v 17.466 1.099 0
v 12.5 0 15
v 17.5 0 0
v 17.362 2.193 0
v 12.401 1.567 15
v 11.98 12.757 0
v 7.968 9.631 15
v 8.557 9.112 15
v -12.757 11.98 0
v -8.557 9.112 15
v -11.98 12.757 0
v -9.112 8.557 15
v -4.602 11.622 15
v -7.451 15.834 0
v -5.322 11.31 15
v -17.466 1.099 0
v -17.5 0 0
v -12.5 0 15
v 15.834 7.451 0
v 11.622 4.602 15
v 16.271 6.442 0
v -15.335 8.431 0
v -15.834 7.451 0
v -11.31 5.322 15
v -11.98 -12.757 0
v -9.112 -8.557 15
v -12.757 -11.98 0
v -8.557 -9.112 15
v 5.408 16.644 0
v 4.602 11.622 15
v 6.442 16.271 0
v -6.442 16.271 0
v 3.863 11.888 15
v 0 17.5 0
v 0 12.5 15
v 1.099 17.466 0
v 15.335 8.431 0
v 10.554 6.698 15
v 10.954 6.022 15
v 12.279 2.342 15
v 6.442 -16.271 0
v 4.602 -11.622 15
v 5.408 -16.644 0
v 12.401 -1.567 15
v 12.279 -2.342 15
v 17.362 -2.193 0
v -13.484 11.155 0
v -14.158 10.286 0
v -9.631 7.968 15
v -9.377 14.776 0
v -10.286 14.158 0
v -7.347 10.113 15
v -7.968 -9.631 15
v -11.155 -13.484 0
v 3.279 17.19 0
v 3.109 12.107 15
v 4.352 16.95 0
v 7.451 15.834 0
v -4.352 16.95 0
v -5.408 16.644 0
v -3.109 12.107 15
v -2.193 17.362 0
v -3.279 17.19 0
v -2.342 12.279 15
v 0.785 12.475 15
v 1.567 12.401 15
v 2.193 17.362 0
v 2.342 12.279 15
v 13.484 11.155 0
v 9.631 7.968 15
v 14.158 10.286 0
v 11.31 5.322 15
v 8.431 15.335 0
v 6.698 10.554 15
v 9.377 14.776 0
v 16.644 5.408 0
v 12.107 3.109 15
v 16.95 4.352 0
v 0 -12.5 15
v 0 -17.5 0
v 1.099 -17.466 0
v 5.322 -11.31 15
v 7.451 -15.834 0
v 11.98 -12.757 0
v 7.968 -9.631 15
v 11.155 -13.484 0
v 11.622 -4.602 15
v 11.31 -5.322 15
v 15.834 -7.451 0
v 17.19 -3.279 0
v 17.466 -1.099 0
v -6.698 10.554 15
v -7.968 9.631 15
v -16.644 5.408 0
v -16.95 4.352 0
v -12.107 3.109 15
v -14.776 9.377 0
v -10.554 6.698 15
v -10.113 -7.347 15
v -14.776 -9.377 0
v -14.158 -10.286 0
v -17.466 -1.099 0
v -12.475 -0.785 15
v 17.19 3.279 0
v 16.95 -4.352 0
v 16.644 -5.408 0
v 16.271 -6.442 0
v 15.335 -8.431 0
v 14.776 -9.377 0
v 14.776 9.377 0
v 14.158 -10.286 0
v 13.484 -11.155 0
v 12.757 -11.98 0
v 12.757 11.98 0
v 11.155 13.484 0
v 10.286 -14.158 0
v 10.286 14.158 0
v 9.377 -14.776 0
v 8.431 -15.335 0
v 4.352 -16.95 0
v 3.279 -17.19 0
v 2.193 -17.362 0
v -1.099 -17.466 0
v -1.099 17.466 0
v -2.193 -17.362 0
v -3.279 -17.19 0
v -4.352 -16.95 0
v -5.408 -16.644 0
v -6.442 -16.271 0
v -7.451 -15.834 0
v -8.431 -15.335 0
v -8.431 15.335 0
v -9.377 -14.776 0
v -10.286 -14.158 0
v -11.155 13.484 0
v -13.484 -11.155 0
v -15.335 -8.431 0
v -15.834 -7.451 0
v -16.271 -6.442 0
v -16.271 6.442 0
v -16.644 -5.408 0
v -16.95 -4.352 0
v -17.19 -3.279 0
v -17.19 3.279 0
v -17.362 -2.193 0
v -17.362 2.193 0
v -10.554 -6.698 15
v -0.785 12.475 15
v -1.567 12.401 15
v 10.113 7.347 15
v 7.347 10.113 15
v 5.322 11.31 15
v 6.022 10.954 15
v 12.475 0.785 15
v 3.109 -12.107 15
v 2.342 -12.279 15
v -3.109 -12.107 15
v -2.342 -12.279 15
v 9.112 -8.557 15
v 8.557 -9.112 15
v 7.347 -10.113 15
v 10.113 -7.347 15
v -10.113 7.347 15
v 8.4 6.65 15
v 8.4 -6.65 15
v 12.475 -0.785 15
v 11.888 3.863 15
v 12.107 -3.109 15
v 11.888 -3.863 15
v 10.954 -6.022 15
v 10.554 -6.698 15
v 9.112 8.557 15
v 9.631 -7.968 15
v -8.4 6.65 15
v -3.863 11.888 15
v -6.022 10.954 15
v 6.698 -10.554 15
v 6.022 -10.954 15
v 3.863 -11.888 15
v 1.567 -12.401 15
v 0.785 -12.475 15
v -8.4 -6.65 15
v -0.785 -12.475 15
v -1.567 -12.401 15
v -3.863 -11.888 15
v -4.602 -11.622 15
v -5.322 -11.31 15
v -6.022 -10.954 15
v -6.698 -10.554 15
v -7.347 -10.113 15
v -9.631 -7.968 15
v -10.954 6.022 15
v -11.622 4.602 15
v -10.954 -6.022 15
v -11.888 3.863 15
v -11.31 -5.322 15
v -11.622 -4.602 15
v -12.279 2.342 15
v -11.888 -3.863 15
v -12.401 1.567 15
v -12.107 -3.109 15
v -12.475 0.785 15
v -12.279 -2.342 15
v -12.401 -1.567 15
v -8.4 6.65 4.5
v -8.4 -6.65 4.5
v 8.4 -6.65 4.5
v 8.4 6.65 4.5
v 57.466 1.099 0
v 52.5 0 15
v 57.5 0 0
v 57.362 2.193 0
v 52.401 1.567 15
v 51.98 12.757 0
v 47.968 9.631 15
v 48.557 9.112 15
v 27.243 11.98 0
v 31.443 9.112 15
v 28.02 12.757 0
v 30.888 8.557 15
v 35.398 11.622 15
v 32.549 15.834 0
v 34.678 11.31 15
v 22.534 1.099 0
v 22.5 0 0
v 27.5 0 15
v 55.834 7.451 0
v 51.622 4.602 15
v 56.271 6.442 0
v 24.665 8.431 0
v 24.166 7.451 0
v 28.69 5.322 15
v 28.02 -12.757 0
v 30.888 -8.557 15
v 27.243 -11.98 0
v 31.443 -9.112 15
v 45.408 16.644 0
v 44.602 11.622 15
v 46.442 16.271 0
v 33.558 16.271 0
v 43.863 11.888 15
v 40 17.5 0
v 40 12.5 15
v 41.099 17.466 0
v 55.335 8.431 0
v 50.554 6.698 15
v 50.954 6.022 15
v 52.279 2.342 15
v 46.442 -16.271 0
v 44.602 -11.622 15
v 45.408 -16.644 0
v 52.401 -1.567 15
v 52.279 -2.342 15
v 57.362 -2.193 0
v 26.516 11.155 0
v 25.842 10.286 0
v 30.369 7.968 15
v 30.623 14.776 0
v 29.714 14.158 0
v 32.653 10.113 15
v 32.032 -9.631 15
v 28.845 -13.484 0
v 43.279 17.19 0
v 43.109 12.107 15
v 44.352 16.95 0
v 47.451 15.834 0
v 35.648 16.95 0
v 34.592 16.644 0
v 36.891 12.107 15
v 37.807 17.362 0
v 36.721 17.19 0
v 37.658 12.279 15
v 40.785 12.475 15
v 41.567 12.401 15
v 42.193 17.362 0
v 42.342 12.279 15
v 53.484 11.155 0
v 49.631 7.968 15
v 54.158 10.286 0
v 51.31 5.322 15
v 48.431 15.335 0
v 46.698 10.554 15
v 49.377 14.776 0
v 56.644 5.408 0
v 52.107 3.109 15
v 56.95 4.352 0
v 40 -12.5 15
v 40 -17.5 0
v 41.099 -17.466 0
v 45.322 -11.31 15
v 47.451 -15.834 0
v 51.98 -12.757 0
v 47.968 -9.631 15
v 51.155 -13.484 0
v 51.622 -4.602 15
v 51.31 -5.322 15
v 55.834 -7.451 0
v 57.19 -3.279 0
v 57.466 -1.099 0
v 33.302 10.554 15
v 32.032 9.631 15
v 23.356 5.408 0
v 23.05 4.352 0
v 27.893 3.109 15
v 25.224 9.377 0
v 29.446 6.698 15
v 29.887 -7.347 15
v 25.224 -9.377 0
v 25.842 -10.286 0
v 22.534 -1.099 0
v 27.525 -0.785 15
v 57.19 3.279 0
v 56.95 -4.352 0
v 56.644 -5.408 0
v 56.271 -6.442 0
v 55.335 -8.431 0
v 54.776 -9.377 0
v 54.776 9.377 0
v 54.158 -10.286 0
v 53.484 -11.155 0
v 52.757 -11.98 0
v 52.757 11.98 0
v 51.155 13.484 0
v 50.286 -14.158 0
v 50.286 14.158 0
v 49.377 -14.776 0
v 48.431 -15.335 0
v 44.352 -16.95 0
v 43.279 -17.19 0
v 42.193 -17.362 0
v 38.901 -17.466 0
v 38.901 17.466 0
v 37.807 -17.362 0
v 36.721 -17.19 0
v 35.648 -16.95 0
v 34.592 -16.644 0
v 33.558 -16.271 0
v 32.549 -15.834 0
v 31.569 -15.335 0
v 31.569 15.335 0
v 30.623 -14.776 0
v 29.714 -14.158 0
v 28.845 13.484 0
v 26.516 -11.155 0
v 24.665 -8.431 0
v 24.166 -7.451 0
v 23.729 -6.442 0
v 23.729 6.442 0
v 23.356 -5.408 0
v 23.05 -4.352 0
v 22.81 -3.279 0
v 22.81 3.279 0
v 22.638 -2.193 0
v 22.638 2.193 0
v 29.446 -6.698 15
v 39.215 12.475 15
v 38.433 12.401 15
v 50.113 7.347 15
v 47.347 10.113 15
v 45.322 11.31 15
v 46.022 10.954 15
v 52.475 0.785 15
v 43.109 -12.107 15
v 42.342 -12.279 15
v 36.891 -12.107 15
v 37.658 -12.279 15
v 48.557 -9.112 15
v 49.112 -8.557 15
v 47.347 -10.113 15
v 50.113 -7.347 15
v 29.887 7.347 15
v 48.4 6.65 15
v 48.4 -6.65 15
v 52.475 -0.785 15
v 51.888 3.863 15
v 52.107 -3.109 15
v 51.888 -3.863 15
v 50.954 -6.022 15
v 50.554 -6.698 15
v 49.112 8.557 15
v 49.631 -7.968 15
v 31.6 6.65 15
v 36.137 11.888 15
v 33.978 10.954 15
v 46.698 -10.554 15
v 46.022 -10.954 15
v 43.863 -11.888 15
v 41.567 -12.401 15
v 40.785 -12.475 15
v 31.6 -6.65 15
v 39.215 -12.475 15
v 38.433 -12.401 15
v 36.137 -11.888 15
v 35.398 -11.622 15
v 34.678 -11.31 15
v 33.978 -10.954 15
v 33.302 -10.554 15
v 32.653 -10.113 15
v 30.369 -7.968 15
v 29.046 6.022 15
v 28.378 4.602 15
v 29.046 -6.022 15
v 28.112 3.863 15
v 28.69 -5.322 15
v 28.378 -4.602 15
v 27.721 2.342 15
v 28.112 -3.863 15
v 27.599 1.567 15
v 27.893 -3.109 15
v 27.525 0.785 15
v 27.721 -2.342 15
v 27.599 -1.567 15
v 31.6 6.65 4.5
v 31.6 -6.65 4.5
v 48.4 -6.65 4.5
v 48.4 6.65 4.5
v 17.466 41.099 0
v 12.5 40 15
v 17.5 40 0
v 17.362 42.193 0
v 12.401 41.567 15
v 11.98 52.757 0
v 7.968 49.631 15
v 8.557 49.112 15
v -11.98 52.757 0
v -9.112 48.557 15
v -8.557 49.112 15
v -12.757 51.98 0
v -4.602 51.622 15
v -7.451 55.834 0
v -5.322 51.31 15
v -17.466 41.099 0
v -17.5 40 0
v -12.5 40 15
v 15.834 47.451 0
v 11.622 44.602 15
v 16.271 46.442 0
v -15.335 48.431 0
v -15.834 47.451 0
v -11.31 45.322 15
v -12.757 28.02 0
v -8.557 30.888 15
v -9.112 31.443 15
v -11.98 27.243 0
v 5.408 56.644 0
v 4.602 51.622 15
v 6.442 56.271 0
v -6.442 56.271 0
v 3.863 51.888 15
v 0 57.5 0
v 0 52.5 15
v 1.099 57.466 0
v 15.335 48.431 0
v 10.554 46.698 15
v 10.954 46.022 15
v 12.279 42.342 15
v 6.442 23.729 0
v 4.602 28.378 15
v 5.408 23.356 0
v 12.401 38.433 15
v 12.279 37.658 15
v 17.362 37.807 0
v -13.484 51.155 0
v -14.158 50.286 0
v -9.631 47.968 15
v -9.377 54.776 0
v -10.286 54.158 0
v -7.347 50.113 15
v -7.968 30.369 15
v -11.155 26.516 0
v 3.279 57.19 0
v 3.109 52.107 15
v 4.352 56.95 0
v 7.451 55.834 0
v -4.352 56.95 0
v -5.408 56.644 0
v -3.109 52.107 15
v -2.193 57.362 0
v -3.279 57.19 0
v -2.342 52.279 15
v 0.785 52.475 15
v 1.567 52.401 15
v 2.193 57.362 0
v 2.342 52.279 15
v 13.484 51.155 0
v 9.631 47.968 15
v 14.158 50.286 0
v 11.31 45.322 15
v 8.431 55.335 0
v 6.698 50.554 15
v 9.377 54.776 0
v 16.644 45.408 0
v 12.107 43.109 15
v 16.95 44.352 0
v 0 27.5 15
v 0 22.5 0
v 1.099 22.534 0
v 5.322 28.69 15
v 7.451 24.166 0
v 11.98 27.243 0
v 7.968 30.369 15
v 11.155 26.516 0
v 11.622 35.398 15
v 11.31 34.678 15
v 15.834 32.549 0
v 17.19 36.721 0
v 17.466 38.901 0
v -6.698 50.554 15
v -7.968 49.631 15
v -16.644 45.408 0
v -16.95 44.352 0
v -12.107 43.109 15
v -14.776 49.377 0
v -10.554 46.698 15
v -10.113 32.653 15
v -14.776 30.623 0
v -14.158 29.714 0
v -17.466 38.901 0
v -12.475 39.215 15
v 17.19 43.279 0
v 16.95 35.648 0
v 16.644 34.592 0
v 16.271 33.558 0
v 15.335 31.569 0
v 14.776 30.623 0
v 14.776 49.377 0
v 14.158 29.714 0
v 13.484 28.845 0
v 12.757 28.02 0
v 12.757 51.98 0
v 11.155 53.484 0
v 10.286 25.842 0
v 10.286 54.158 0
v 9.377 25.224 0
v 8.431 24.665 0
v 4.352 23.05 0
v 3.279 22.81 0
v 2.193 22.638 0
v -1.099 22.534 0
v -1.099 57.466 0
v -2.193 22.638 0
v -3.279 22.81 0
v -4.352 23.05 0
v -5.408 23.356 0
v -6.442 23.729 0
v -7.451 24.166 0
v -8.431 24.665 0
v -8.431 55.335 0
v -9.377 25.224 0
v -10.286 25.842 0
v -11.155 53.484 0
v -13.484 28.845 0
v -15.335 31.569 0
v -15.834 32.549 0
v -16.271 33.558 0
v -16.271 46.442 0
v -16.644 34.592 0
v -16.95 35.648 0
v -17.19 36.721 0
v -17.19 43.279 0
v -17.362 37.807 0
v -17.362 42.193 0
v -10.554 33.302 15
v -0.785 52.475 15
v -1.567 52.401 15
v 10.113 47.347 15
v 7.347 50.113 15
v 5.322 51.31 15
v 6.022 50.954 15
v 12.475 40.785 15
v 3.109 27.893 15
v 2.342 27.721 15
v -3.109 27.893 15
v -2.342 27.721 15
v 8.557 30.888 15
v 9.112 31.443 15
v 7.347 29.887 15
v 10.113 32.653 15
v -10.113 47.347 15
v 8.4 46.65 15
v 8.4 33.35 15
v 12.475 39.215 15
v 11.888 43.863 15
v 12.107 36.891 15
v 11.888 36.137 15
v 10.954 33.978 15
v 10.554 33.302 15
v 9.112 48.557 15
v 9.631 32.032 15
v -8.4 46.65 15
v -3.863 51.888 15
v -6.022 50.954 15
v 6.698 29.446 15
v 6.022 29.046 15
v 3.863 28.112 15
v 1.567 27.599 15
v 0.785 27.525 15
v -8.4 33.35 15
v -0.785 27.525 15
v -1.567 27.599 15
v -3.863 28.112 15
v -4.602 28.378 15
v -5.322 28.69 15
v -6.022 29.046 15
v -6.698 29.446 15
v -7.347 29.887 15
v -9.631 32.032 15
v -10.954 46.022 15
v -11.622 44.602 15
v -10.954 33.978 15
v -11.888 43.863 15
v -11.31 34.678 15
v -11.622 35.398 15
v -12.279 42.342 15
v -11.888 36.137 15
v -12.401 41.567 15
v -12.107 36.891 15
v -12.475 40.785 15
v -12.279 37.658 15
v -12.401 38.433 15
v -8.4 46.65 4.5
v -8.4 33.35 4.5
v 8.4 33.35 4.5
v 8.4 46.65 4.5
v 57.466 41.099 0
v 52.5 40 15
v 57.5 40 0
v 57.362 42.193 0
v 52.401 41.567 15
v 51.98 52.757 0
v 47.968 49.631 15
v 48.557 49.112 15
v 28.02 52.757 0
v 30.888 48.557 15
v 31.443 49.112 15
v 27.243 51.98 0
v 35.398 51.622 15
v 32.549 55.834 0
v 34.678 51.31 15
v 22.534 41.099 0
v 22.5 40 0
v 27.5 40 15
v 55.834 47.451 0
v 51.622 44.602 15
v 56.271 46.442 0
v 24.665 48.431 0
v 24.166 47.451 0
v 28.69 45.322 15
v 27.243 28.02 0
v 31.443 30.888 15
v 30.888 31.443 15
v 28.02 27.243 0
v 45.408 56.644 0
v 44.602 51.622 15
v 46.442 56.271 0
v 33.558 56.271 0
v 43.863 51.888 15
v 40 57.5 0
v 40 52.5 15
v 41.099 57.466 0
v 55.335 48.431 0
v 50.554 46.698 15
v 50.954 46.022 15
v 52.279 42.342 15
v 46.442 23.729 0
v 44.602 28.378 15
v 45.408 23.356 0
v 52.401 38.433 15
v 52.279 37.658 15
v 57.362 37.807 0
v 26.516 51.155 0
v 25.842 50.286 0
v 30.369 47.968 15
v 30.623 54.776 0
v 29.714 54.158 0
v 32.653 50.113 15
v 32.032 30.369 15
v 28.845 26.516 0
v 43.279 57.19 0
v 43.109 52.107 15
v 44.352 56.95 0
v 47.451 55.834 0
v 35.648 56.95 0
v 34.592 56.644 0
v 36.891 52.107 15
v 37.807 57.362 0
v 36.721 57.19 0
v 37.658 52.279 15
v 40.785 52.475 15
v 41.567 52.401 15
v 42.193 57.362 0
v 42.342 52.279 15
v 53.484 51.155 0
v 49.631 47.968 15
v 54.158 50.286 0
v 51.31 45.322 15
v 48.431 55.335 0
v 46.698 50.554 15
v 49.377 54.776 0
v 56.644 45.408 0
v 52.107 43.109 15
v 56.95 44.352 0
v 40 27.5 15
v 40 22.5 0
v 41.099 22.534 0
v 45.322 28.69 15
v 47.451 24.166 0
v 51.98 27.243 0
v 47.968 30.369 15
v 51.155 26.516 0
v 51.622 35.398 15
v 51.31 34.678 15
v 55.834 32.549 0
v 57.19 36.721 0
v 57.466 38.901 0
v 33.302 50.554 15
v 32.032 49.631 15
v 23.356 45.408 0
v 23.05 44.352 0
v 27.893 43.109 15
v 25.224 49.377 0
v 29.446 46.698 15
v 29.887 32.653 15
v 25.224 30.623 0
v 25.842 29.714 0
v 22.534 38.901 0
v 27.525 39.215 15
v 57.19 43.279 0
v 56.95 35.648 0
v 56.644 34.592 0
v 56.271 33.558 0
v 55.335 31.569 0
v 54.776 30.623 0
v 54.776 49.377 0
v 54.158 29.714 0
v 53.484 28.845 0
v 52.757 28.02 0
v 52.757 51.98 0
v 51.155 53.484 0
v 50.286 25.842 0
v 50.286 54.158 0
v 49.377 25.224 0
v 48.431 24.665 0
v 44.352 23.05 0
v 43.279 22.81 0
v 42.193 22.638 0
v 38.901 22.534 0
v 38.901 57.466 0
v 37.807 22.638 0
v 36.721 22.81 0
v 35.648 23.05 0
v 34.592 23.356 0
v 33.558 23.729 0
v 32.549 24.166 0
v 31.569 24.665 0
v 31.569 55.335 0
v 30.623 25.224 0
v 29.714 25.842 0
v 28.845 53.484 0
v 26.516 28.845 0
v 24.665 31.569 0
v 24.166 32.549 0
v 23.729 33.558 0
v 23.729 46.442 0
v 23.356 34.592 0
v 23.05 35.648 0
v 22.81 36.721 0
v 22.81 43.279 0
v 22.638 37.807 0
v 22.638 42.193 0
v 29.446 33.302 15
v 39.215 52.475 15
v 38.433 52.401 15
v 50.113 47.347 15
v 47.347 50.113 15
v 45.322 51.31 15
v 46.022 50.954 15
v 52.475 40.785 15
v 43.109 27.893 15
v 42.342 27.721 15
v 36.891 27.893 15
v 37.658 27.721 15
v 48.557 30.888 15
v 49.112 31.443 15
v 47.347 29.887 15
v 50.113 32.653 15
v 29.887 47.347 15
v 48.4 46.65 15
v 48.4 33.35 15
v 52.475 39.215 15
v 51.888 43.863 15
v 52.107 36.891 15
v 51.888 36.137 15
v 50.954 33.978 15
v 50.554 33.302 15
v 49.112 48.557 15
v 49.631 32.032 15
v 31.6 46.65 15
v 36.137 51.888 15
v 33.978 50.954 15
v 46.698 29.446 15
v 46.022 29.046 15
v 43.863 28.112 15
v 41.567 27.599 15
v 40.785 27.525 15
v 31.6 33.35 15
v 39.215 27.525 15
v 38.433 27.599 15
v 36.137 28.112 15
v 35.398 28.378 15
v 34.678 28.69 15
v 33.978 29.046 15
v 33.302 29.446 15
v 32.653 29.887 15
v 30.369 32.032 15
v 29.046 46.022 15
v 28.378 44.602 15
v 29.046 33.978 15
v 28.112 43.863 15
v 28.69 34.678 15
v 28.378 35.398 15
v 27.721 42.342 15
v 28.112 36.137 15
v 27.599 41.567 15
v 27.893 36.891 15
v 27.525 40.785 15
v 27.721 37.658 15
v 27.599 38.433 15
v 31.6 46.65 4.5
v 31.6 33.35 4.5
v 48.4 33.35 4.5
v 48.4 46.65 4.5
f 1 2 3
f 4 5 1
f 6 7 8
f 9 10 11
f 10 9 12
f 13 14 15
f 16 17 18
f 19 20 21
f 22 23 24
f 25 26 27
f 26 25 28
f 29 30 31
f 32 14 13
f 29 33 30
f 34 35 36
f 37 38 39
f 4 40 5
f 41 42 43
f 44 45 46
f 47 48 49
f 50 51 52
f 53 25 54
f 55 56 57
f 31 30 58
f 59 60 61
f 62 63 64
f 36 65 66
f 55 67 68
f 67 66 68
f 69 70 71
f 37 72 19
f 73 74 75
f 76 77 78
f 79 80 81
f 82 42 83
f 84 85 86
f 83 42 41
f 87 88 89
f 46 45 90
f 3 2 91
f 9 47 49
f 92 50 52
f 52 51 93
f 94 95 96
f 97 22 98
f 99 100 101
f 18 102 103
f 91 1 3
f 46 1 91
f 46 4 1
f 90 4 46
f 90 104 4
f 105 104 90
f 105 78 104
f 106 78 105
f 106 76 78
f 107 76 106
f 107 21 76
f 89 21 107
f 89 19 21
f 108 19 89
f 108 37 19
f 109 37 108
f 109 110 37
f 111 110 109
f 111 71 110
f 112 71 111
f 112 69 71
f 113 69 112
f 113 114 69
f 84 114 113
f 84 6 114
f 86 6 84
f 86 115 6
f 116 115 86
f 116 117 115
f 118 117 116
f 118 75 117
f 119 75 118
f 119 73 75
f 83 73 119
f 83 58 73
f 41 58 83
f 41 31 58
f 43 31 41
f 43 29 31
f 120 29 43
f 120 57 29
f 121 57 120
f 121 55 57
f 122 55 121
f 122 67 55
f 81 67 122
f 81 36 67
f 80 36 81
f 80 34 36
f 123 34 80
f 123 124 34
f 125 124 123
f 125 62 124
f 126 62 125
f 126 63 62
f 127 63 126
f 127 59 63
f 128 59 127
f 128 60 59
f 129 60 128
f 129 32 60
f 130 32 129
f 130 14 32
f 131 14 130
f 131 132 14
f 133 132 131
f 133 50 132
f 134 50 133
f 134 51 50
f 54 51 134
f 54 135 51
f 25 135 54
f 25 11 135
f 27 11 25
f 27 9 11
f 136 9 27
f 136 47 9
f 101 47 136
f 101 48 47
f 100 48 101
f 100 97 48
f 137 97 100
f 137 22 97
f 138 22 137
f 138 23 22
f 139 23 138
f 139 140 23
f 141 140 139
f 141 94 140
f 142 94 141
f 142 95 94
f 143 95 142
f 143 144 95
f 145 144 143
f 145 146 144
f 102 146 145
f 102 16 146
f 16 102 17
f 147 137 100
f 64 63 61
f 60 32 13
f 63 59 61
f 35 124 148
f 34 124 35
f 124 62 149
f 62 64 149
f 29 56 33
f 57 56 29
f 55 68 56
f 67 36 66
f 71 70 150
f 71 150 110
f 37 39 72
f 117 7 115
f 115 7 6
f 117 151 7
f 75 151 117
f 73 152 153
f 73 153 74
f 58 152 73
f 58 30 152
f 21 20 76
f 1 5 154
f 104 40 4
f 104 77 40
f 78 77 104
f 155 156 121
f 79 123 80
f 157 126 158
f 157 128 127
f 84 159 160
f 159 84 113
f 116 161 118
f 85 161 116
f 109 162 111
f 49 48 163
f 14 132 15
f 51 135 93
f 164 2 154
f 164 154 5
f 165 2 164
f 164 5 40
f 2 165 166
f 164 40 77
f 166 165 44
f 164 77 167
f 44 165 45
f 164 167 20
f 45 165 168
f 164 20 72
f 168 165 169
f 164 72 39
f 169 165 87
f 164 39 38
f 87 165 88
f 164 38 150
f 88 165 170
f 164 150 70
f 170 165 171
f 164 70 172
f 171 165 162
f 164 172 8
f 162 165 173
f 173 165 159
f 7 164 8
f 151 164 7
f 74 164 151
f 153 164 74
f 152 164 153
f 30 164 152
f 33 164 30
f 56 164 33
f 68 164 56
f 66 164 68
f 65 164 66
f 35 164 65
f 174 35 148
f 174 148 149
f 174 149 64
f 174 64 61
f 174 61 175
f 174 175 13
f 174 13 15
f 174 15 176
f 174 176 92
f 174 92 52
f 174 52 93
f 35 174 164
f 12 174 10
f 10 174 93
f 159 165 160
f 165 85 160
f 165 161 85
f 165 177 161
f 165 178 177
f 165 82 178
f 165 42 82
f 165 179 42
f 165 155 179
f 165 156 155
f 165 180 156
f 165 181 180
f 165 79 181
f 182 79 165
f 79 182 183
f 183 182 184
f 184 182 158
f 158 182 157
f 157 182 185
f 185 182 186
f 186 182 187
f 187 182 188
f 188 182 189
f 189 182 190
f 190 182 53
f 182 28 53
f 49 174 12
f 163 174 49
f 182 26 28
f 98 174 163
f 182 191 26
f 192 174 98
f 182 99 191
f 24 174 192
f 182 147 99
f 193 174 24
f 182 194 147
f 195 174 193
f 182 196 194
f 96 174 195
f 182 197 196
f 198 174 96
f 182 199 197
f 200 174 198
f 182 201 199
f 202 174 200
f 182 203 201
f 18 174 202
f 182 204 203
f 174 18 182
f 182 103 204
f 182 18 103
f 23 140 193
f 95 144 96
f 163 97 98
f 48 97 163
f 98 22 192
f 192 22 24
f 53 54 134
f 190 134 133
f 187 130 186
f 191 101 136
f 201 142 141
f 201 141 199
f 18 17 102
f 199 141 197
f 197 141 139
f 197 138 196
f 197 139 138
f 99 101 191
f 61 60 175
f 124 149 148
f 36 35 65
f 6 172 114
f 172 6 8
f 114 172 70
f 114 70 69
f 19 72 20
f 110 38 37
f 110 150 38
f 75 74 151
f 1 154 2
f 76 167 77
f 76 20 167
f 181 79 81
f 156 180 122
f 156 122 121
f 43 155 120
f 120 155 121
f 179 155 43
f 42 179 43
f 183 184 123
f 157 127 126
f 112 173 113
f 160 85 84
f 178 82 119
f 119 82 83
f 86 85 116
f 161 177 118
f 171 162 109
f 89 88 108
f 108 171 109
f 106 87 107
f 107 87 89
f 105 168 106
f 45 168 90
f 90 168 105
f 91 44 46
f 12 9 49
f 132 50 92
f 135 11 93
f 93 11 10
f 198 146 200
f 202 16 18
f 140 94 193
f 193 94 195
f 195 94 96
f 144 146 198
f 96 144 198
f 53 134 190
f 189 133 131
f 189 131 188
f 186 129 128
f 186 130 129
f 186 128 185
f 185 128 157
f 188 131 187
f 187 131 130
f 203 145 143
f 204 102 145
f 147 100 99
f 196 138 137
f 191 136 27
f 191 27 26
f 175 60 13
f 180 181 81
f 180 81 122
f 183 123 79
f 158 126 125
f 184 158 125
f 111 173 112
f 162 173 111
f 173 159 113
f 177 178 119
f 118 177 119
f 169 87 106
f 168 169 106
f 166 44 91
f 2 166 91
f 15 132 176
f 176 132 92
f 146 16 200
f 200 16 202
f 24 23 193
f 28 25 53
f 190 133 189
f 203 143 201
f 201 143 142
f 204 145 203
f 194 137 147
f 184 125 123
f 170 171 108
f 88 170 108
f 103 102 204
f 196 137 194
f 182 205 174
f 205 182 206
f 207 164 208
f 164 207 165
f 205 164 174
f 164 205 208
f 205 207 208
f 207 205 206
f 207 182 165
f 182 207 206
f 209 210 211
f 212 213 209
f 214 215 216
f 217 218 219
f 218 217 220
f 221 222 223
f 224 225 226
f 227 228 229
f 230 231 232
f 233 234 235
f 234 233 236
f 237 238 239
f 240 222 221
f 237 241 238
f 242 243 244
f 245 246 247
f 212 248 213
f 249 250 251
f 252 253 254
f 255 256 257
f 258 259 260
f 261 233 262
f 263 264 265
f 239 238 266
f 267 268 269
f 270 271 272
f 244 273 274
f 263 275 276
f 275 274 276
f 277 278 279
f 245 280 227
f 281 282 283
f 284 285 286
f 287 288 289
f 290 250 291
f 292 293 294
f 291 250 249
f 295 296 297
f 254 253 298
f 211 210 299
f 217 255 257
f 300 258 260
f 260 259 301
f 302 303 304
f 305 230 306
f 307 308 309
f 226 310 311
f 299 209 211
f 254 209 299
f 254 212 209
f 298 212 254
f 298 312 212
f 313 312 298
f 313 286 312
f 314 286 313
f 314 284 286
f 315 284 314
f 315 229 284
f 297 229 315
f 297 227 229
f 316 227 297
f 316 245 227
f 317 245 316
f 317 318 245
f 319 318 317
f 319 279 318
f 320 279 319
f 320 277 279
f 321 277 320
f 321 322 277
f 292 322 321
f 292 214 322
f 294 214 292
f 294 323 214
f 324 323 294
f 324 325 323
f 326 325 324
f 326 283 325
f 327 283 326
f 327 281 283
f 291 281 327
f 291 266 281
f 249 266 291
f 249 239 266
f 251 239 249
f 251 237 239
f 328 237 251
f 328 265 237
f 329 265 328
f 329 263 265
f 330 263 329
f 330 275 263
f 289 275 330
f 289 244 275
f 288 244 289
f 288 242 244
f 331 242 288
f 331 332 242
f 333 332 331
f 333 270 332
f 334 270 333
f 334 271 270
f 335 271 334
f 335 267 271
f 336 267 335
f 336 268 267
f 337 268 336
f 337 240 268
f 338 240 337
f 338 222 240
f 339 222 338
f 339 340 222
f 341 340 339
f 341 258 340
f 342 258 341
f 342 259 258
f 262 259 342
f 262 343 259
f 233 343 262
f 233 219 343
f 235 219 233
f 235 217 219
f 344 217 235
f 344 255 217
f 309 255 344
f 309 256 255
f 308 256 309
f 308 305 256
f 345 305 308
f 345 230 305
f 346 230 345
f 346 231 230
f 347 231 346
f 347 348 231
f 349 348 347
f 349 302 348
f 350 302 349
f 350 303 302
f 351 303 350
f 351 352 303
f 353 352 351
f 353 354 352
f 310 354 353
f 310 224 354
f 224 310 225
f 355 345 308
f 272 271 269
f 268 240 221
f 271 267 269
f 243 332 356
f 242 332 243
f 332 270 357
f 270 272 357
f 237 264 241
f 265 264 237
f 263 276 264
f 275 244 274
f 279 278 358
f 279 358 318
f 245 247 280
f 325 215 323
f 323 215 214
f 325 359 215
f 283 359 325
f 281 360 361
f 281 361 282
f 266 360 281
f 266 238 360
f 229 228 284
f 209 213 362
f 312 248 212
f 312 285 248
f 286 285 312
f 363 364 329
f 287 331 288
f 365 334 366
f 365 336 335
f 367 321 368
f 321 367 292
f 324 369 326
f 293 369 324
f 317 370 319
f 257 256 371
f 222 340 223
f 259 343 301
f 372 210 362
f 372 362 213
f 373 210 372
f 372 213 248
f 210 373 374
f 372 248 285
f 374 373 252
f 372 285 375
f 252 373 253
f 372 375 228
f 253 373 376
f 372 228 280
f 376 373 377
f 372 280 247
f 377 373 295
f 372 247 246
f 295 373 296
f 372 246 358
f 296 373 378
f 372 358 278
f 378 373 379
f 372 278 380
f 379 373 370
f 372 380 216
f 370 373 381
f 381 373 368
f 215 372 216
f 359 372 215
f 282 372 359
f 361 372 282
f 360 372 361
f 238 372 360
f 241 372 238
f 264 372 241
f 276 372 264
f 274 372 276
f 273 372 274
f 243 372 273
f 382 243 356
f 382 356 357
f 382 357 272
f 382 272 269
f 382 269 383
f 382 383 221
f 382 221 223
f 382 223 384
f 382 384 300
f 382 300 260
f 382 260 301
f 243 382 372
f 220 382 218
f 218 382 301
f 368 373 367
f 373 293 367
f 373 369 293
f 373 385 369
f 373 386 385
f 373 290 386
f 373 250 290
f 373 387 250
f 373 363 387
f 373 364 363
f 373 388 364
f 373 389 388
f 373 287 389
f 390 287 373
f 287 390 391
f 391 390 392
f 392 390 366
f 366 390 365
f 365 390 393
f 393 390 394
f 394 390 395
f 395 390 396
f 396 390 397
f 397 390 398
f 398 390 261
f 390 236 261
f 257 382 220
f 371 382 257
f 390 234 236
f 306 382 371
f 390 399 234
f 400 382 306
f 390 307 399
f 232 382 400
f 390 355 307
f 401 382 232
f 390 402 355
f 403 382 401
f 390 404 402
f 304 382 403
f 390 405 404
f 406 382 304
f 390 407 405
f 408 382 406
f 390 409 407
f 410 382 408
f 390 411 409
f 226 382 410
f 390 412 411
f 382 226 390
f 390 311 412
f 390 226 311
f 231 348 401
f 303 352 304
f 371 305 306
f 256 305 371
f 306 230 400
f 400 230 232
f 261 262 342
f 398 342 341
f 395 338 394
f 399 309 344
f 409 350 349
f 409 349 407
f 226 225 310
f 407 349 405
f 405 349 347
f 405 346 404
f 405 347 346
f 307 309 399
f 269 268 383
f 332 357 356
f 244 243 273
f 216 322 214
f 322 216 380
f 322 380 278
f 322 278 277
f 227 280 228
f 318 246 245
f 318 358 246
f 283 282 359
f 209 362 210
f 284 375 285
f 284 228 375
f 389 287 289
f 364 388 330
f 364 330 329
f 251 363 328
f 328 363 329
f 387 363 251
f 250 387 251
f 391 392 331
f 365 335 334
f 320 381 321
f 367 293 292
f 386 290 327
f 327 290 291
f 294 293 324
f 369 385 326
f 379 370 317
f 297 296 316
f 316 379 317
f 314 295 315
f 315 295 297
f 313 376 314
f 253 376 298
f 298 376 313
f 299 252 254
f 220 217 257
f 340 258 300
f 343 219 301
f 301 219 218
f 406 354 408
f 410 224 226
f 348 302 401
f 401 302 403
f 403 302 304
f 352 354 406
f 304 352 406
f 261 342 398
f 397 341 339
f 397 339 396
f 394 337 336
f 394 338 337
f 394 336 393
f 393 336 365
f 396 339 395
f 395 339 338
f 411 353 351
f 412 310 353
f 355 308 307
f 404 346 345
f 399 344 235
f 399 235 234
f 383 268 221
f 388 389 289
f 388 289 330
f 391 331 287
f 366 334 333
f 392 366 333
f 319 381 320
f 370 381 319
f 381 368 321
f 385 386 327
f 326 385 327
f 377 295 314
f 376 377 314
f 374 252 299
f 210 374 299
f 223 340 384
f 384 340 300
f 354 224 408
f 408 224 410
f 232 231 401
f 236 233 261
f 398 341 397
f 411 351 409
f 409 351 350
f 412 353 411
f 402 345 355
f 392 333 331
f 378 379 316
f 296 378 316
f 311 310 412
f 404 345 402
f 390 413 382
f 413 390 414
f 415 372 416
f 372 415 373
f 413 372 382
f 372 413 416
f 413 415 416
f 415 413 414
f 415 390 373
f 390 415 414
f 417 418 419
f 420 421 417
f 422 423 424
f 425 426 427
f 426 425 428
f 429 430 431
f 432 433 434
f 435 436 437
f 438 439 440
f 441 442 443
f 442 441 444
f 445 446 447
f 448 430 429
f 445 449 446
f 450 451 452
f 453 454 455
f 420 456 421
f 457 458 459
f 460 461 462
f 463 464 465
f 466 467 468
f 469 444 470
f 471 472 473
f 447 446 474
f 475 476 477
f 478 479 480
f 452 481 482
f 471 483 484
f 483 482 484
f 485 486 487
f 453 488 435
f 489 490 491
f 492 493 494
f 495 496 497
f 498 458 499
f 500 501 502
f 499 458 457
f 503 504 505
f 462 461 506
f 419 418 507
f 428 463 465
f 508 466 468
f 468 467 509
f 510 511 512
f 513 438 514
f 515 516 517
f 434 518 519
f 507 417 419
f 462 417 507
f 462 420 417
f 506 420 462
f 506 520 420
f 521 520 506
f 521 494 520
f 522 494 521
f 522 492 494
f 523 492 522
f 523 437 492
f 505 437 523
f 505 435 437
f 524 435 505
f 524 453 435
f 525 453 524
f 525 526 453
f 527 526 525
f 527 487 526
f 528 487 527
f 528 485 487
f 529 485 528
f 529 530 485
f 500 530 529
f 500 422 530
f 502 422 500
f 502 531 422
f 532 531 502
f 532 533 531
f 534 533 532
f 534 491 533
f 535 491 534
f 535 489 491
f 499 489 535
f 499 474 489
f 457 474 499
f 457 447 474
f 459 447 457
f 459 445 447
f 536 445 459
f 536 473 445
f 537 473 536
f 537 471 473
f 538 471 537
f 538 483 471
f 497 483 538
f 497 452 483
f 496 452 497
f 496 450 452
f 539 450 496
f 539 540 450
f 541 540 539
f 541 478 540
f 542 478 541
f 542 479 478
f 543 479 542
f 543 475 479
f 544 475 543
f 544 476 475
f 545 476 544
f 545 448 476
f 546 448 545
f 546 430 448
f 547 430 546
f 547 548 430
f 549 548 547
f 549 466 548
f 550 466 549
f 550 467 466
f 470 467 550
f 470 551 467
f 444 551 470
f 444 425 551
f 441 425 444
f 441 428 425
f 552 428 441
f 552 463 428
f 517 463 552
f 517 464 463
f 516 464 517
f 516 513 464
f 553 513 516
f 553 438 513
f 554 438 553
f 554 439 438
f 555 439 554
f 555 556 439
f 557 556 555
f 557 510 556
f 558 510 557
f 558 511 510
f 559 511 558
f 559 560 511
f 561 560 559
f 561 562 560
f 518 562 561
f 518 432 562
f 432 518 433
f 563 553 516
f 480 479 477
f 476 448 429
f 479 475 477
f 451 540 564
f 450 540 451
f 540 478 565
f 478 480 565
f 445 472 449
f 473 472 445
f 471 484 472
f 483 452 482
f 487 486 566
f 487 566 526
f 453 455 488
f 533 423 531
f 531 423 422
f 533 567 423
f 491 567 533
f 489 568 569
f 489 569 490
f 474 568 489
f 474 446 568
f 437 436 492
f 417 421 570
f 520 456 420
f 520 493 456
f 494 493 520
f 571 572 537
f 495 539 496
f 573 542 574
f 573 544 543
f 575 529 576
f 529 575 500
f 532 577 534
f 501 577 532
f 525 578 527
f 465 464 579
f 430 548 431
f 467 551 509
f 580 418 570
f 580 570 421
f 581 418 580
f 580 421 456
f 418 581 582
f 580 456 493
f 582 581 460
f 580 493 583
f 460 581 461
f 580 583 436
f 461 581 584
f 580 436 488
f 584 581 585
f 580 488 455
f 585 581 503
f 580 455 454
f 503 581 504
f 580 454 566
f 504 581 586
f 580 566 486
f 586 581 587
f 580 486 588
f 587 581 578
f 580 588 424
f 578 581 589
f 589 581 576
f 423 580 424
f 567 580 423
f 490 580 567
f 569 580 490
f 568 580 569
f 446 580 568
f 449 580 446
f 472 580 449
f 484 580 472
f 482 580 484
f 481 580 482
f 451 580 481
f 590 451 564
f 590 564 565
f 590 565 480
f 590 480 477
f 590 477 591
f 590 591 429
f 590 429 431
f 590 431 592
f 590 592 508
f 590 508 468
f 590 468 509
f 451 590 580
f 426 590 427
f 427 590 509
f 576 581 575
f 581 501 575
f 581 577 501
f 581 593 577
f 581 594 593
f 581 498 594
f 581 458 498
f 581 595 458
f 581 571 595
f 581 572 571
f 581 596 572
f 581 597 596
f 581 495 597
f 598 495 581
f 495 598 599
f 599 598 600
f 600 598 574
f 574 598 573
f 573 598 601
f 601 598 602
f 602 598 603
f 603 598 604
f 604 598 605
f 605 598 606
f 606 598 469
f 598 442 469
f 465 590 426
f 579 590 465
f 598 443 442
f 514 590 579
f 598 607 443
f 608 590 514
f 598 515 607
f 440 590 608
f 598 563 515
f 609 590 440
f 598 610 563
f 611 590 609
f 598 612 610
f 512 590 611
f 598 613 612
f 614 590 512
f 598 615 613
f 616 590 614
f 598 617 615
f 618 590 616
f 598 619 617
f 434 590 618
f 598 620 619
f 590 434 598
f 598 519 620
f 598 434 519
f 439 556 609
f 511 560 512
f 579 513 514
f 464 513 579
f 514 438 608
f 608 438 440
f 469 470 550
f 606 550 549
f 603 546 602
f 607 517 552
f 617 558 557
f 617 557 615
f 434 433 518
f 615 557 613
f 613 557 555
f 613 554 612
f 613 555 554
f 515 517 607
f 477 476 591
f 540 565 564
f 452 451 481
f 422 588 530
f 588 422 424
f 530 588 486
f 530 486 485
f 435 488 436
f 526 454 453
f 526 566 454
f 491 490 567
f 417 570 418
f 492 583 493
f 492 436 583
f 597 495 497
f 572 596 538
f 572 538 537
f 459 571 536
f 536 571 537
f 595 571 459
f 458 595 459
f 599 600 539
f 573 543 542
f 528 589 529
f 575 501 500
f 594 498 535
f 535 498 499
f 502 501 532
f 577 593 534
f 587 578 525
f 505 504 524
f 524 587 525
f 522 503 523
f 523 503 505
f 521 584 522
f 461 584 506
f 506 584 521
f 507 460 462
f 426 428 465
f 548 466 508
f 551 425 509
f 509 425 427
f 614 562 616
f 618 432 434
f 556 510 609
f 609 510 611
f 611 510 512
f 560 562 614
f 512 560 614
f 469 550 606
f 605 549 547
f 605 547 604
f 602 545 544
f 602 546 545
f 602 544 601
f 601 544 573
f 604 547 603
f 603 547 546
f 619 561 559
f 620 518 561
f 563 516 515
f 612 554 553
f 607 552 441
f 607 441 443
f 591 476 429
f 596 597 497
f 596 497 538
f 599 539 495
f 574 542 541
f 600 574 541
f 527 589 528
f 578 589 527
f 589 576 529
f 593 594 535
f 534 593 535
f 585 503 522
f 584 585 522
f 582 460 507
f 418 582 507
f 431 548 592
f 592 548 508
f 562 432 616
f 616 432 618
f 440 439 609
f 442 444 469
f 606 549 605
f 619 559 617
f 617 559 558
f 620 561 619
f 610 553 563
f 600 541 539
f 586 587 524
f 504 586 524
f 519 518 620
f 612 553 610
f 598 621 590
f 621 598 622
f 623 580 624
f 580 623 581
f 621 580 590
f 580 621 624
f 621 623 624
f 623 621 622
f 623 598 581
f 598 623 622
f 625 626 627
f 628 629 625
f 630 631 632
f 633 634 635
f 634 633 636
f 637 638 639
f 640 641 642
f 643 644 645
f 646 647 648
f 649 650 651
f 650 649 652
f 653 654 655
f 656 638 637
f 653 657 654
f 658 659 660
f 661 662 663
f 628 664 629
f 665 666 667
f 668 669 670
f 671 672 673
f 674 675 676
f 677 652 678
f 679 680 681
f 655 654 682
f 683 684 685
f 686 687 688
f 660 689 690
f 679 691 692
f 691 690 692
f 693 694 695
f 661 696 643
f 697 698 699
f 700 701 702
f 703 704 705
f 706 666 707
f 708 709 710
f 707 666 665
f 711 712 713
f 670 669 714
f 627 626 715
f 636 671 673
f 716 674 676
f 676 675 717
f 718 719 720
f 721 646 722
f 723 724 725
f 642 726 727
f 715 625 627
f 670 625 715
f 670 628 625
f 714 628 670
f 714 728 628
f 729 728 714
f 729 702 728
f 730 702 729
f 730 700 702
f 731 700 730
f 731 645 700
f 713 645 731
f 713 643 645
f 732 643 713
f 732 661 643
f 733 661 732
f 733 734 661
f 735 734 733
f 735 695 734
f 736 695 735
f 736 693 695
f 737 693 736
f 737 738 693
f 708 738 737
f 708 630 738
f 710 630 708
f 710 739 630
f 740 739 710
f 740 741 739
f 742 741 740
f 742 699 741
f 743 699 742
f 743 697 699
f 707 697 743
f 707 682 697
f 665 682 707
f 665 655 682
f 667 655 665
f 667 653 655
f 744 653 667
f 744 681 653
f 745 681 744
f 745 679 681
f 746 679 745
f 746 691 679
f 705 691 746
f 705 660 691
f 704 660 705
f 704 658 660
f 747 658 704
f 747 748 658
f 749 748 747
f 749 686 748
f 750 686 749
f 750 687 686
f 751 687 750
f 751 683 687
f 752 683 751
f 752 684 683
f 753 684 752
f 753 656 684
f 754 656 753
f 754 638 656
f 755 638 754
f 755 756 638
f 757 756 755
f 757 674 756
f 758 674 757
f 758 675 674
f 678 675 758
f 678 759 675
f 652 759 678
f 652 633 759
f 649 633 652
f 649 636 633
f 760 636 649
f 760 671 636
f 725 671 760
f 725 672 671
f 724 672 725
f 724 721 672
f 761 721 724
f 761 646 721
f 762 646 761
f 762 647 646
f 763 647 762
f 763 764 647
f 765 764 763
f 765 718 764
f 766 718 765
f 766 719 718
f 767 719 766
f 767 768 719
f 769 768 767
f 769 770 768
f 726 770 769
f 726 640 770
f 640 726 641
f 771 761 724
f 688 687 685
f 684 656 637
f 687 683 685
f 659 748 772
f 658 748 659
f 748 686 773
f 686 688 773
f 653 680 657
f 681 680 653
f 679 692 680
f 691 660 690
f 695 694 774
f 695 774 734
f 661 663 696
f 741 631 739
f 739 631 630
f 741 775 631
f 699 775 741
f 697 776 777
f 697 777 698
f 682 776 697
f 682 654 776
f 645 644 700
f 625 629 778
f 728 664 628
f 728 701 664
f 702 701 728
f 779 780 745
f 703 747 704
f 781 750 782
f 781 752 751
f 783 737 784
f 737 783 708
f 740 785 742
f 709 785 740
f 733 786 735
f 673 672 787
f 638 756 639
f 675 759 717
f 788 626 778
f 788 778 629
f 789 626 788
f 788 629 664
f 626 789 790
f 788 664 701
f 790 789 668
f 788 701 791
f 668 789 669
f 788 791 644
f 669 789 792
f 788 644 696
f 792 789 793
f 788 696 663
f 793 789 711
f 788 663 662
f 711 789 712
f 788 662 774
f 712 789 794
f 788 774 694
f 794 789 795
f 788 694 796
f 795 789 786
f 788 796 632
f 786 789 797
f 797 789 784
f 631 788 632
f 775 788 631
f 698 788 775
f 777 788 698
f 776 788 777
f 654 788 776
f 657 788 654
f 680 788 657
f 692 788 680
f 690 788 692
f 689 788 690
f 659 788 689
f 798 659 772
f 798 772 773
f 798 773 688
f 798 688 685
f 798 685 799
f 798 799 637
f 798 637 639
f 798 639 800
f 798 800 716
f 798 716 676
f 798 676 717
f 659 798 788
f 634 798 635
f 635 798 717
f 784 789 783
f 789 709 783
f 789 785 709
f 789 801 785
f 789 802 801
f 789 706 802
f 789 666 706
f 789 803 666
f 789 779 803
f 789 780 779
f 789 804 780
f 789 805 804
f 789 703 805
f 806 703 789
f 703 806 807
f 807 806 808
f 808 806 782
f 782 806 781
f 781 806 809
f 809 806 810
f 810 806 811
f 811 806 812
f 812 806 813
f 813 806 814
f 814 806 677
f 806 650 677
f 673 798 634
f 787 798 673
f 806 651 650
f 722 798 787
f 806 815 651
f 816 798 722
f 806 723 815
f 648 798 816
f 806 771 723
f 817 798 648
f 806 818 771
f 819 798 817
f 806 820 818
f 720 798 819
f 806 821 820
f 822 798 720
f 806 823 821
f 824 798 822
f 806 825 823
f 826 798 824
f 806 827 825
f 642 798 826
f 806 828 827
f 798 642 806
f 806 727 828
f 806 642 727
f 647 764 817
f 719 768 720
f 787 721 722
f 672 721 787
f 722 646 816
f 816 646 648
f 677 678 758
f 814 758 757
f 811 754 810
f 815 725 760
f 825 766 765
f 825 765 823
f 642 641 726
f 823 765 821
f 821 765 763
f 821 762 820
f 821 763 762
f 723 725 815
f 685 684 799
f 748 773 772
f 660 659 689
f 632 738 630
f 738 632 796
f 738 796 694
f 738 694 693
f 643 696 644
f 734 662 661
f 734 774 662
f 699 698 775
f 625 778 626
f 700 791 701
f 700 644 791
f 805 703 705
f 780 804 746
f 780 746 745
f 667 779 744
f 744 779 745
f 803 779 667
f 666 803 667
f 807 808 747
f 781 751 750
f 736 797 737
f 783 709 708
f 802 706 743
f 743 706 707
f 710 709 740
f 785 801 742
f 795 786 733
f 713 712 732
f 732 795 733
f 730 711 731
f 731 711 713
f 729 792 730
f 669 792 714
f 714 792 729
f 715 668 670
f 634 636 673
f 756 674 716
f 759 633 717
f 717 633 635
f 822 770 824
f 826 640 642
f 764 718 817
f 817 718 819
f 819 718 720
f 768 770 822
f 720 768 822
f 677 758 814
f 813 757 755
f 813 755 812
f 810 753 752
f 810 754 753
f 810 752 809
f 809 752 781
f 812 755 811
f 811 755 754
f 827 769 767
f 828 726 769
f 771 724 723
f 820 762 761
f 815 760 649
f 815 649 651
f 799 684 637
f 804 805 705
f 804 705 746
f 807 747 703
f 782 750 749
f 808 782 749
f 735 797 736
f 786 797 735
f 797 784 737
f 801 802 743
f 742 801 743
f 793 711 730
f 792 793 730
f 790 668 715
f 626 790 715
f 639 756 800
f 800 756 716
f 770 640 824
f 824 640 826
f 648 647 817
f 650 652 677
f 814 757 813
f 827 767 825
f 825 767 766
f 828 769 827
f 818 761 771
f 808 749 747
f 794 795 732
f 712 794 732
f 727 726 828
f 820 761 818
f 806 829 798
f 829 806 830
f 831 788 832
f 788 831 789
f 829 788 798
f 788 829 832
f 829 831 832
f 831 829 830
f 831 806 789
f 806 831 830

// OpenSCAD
// file: inc/Nema17.scad
$fn=36;

MotorHeight=40;
MotorWidth=42;
ShaftDiameter=5;
ShaftLength=28;
FixingHolesInteraxis=31;

module Part1(MotorWidth,Height,CornerFillet)
{
  hull()
  {
    translate([MotorWidth/2-CornerFillet,MotorWidth/2,-0.25])
      sphere(0.25);
    translate([-MotorWidth/2+CornerFillet,MotorWidth/2,-0.25])
      sphere(0.25);
    translate([MotorWidth/2-CornerFillet,-MotorWidth/2,-0.25])
      sphere(0.25);
    translate([-MotorWidth/2+CornerFillet,-MotorWidth/2,-0.25])
      sphere(0.25);
    translate([MotorWidth/2,MotorWidth/2-CornerFillet,-0.25])
      sphere(0.25);
    translate([-MotorWidth/2,MotorWidth/2-CornerFillet,-0.25])
      sphere(0.25);
    translate([MotorWidth/2,-MotorWidth/2+CornerFillet,-0.25])
      sphere(0.25);
    translate([-MotorWidth/2,-MotorWidth/2+CornerFillet,-0.25])
      sphere(0.25);

    translate([MotorWidth/2-CornerFillet,MotorWidth/2,-Height+0.25])
      sphere(0.25);
    translate([-MotorWidth/2+CornerFillet,MotorWidth/2,-Height+0.25])
      sphere(0.25);
    translate([MotorWidth/2-CornerFillet,-MotorWidth/2,-Height+0.25])
      sphere(0.25);
    translate([-MotorWidth/2+CornerFillet,-MotorWidth/2,-Height+0.25])
      sphere(0.25);
    translate([MotorWidth/2,MotorWidth/2-CornerFillet,-Height+0.25])
      sphere(0.25);
    translate([-MotorWidth/2,MotorWidth/2-CornerFillet,-Height+0.25])
      sphere(0.25);
    translate([MotorWidth/2,-MotorWidth/2+CornerFillet,-Height+0.25])
      sphere(0.25);
    translate([-MotorWidth/2,-MotorWidth/2+CornerFillet,-Height+0.25])
      sphere(0.25);
  }
}

module Nema17(MotorHeight,MotorWidth,ShaftDiameter,ShaftLength,FixingHolesInteraxis)
{
  difference()
  {
    union()
    {
  //MotorShaft
      color("Silver")
        cylinder(d=ShaftDiameter,h=MotorHeight+ShaftLength);

      color("Black")
      translate([0,0,MotorHeight])
        cylinder(d=22,h=1);

  //motor body
      color("Silver")
        translate([0,0,MotorHeight])
          Part1(MotorWidth,8,3);
      color("Black")
        translate([0,0,MotorHeight-8])
          Part1(MotorWidth,MotorHeight-18,5);
      color("Silver")
        translate([0,0,10])
          Part1(MotorWidth,10,3);

  //Connector
      color("Silver")
        translate([MotorWidth/2,-8.1,0])
          cube([4,16.2,3]);

      difference()
      {
        color("White")
          translate([MotorWidth/2,-8,3])
            cube([5,16,6]);
        color("White")
          translate([MotorWidth/2+2.1,-7.5,4])
            cube([3,15,4]);
      }

      color("GoldenRod")
        translate([MotorWidth/2,1.27,6])
          rotate([0,90,0])
            cylinder(d=1,h=5);
      color("GoldenRod")
        translate([MotorWidth/2,1.27+2.54,6])
          rotate([0,90,0])
            cylinder(d=1,h=5);
      color("GoldenRod")
        translate([MotorWidth/2,1.27+2.54*2,6])
          rotate([0,90,0])
            cylinder(d=1,h=5);
      color("GoldenRod")
        translate([MotorWidth/2,-1.27,6])
          rotate([0,90,0])
            cylinder(d=1,h=5);
      color("GoldenRod")
        translate([MotorWidth/2,-1.27-2.54,6])
          rotate([0,90,0])
            cylinder(d=1,h=5);
      color("GoldenRod")
        translate([MotorWidth/2,-1.27-2.54*2,6])
          rotate([0,90,0])
            cylinder(d=1,h=5);
    }
    translate([FixingHolesInteraxis/2,FixingHolesInteraxis/2,-2])
      cylinder(d=3,h=MotorHeight+5);
    translate([-FixingHolesInteraxis/2,FixingHolesInteraxis/2,-2])
      cylinder(d=3,h=MotorHeight+5);
    translate([FixingHolesInteraxis/2,-FixingHolesInteraxis/2,-2])
      cylinder(d=3,h=MotorHeight+5);
    translate([-FixingHolesInteraxis/2,-FixingHolesInteraxis/2,-2])
      cylinder(d=3,h=MotorHeight+5);
  }
}

Nema17(MotorHeight,MotorWidth,ShaftDiameter,ShaftLength,FixingHolesInteraxis);
// file: inc/cubeX.scad
// http://www.thingiverse.com/thing:112008
//
// Simple and fast corned cube!
// Anaximandro de Godinho.
//

module cubeX( size, radius=1, rounded=true, center=false )
{
	l = len( size );
	if( l == undef )
		_cubeX( size, size, size, radius, rounded, center );
	else
		_cubeX( size[0], size[1], size[2], radius, rounded, center );
}

module _cubeX( x, y, z, r, rounded, center )
{
	if( rounded )
		if( center )
			translate( [-x/2, -y/2, -z/2] )
			__cubeX( x, y, z, r );
		else
			__cubeX( x, y, z, r );
	else
		cube( [x, y, z], center );
}

module __cubeX(	x, y, z, r )
{
	//TODO: discount r.
	rC = r;
	hull()
	{
		translate( [rC, rC, rC] )
			sphere( r );
		translate( [rC, y-rC, rC] )
			sphere( r );
		translate( [rC, rC, z-rC] )
			sphere( r );
		translate( [rC, y-rC, z-rC] )
			sphere( r );

		translate( [x-rC, rC, rC] )
			sphere( r );
		translate( [x-rC, y-rC, rC] )
			sphere( r );
		translate( [x-rC, rC, z-rC] )
			sphere( r );
		translate( [x-rC, y-rC, z-rC] )
			sphere( r );
	}
}
// file: inc/screwsizes.scad
/////////////////////////////////////////////////////////////////////////////////
// screwsizes.scad - has the screw sizes I use
/////////////////////////////////////////////////////////////////////////////////
// created 7/13/2016
// last update 7/20/16
/////////////////////////////////////////////////////////////////////////////////
screw2 = 2.6;
screw3 = 3.5;
screw3t = 2.6;
screw3hd = 6.5;
screw4 = 4.5;
screw4t = 3.5;
screw4hd = 7.5;
nut4 = 8.1;
screw5 = 5.7;
screw5t = 4.5;
screw5hd = 11;
screw8 = 8.7;
nut5 = 9.5;
//////////////////////////////////////////////////////////////////////////////////
// main file
///////////////////////////////////////////////////////////////////////////////////////////////////////////////////////
// feet.scad - corexy with mgn12 rails
// created: 10/31/2016
// last modified: 12/13/2016
///////////////////////////////////////////////////////////////////////////////////////////////////////////////////////
// Printer name: CXY-MGNv2
// Colors are for making it easier to edit the correct bits
///////////////////////////////////////////////////////////////////////////////////////////////////////////////////////
include <cxy-mgnv2-h.scad>
///////////////////////////////////////////////////////////////////////////////////////////////////////////////////////

feet(4); // arg is quanity to print and be multiples of 2

//////////////////////////////////////////////////////////////////////////////////////////////////////////////////////

module feet(Qty=4) {
	for(i=[0:(Qty/2-1)]) {
		translate([i*40,0,0]) {
			difference() {
				color("cyan") cylinder(h=15,d1=35,d2=25,$fn=100);
				translate([0,0,10]) color("blue") cube([sq_w,sq_d,11],true); // al slot
			}
		}
	}
	for(i=[0:(Qty/2-1)]) {
		translate([i*40,40,0]) {
			difference() {
				color("red") cylinder(h=15,d1=35,d2=25,$fn=100);
				translate([0,0,10]) color("yellow") cube([sq_w,sq_d,11],true); // al slot
			}
		}
	}
}

///////////////////////////////////////////////////////////////////////////////////////////////////////////////////////
